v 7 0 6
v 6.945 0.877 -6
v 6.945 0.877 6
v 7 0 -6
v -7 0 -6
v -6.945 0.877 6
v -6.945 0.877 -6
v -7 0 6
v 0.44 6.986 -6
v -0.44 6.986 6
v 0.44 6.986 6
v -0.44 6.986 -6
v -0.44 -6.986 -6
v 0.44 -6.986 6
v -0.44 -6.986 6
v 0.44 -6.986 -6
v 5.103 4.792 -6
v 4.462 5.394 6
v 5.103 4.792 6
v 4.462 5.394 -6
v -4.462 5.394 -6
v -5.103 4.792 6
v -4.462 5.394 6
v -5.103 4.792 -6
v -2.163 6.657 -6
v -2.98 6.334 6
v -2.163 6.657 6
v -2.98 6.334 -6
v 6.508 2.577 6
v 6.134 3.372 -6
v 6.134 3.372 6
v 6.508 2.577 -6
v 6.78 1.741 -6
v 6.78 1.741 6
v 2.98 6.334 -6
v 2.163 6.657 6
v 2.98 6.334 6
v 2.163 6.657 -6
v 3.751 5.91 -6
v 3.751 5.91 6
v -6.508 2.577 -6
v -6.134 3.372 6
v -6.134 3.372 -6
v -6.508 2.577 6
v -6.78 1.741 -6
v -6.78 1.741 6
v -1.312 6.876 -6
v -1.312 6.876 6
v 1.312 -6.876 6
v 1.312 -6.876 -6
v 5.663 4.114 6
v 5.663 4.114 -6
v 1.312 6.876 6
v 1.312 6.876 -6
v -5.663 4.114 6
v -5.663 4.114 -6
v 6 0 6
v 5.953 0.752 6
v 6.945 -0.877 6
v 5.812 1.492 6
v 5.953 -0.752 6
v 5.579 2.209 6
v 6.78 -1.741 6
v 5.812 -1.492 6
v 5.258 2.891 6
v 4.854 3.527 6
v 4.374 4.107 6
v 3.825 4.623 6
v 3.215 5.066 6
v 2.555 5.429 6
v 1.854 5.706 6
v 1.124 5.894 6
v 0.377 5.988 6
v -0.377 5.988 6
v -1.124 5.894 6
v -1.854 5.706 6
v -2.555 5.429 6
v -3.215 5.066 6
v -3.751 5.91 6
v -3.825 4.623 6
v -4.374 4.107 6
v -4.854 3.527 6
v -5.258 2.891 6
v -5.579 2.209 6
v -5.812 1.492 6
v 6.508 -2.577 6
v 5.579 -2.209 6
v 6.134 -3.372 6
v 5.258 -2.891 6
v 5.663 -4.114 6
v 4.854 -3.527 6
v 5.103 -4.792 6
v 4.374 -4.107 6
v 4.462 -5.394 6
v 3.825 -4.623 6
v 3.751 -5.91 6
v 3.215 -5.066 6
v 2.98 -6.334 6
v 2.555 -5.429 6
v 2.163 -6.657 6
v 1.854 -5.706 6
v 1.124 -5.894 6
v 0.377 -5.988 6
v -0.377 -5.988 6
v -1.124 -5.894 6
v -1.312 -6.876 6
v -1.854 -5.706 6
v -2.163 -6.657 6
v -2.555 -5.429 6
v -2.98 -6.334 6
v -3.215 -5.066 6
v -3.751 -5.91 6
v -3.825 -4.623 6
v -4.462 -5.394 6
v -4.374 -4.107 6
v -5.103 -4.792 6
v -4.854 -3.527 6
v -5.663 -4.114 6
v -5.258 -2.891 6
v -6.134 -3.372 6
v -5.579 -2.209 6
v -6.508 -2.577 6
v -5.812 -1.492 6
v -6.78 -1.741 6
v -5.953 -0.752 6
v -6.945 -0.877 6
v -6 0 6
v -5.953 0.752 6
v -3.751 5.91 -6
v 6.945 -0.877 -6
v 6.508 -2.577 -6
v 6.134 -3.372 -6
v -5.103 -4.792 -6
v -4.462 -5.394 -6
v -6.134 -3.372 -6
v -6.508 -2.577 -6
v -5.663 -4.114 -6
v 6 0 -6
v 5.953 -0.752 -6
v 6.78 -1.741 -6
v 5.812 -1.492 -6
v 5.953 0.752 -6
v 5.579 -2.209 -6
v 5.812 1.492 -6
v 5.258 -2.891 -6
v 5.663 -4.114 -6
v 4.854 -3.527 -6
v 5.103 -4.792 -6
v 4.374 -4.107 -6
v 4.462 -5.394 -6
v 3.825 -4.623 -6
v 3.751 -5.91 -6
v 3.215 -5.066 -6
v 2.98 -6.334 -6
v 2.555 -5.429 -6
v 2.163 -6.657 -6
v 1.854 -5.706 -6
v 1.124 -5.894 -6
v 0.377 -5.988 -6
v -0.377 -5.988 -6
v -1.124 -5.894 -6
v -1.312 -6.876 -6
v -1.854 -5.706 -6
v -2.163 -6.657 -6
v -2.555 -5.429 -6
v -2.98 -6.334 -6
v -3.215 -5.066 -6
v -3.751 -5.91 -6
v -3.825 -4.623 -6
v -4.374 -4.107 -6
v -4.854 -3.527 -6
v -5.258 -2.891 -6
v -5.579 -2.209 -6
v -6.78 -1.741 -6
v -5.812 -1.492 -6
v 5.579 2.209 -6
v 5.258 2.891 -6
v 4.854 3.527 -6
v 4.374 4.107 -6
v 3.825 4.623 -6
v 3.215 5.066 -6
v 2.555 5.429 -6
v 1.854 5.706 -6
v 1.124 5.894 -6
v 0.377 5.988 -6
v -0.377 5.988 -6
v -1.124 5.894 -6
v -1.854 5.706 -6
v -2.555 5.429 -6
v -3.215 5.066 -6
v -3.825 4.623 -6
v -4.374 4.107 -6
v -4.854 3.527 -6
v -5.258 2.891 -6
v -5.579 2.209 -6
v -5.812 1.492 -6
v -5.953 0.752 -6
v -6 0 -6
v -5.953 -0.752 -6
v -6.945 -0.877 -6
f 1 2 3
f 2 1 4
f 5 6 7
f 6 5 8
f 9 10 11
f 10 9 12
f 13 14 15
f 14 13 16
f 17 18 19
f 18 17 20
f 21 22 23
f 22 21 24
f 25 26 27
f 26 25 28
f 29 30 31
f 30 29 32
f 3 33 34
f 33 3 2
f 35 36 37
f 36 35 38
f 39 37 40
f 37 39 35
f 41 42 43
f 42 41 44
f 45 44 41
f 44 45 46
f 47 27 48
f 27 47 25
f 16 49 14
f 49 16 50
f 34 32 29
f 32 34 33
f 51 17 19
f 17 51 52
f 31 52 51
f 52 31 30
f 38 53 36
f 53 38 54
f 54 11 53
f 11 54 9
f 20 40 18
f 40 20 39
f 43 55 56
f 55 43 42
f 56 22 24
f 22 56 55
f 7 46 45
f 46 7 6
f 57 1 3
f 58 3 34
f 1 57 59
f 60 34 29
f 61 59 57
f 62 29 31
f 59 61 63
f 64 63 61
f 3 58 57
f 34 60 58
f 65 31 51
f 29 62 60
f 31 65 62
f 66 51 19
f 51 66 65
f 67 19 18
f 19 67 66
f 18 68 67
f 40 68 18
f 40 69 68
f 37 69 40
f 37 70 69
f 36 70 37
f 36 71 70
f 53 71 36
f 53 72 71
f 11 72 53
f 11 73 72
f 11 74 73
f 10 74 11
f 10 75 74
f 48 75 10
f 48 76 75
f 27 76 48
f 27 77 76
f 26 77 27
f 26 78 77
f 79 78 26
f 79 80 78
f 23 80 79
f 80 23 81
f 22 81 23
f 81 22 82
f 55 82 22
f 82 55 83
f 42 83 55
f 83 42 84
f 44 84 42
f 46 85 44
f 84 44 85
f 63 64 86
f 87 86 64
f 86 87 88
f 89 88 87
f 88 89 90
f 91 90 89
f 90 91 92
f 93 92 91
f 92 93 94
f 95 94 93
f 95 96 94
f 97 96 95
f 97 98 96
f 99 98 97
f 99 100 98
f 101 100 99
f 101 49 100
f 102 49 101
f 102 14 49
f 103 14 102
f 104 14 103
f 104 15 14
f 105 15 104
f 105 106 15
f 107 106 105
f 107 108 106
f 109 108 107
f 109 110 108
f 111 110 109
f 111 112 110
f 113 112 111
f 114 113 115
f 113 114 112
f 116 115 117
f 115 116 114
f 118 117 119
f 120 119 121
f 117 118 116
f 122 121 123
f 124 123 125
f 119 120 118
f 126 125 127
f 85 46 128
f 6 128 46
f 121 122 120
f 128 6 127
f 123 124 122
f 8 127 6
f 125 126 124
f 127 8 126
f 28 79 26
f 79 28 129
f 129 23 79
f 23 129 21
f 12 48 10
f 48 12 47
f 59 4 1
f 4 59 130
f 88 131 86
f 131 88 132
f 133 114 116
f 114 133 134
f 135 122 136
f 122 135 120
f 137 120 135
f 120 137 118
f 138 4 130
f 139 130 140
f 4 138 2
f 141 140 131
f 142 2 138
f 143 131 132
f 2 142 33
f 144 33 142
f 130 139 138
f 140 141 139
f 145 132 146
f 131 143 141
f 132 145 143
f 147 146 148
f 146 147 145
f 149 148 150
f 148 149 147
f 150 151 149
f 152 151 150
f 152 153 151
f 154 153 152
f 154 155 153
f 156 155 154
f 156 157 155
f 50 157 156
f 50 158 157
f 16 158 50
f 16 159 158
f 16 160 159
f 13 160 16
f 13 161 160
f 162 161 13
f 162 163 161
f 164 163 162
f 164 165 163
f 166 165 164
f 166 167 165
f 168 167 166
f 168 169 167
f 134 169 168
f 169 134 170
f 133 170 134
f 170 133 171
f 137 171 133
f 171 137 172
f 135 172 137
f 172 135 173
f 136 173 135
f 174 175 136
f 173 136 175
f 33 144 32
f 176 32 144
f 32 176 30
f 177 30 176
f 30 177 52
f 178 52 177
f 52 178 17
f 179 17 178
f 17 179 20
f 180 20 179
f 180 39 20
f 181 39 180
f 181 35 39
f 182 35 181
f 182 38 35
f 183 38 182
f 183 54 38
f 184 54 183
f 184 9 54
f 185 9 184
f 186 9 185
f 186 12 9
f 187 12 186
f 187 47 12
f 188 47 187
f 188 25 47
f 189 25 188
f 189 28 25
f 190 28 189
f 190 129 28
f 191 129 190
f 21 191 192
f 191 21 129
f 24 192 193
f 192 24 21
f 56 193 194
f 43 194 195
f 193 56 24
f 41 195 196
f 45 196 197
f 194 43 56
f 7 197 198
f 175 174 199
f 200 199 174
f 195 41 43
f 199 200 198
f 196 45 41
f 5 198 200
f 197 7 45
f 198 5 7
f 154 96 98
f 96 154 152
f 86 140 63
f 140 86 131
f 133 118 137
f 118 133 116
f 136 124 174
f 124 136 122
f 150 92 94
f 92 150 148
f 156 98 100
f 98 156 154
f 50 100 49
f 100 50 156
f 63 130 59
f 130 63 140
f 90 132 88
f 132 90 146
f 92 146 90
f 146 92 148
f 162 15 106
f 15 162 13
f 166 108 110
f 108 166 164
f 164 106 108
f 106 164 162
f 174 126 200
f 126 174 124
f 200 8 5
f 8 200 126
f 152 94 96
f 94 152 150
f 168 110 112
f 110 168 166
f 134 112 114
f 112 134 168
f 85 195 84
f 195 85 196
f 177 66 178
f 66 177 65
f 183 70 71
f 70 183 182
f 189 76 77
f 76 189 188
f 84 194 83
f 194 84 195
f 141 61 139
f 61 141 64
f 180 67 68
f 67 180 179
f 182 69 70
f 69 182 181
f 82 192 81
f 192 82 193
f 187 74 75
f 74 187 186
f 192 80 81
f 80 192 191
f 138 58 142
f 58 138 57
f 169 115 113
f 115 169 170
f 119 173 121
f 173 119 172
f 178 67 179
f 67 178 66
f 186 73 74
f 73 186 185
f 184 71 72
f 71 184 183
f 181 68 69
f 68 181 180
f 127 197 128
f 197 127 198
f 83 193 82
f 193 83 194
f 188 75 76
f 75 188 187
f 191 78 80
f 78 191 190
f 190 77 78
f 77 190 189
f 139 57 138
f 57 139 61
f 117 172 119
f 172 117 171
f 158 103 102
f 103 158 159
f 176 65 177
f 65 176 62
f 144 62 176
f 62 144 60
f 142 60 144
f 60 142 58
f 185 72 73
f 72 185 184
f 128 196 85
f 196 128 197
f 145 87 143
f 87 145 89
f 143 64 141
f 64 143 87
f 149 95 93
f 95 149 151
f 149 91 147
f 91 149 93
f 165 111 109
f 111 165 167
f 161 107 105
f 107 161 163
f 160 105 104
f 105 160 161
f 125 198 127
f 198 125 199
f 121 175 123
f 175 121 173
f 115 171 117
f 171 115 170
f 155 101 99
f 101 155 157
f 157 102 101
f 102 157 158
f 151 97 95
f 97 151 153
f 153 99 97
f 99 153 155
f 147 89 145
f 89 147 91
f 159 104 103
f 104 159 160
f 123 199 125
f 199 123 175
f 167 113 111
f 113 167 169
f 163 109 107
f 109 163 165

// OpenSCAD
$fn = 50;


difference() {
	union() {
		translate(v = [0, 0, -6.0000000000]) {
			cylinder(h = 12, r = 7.0000000000);
		}
	}
	union() {
		translate(v = [0, 0, -100.0000000000]) {
			cylinder(h = 200, r = 6);
		}
	}
}
